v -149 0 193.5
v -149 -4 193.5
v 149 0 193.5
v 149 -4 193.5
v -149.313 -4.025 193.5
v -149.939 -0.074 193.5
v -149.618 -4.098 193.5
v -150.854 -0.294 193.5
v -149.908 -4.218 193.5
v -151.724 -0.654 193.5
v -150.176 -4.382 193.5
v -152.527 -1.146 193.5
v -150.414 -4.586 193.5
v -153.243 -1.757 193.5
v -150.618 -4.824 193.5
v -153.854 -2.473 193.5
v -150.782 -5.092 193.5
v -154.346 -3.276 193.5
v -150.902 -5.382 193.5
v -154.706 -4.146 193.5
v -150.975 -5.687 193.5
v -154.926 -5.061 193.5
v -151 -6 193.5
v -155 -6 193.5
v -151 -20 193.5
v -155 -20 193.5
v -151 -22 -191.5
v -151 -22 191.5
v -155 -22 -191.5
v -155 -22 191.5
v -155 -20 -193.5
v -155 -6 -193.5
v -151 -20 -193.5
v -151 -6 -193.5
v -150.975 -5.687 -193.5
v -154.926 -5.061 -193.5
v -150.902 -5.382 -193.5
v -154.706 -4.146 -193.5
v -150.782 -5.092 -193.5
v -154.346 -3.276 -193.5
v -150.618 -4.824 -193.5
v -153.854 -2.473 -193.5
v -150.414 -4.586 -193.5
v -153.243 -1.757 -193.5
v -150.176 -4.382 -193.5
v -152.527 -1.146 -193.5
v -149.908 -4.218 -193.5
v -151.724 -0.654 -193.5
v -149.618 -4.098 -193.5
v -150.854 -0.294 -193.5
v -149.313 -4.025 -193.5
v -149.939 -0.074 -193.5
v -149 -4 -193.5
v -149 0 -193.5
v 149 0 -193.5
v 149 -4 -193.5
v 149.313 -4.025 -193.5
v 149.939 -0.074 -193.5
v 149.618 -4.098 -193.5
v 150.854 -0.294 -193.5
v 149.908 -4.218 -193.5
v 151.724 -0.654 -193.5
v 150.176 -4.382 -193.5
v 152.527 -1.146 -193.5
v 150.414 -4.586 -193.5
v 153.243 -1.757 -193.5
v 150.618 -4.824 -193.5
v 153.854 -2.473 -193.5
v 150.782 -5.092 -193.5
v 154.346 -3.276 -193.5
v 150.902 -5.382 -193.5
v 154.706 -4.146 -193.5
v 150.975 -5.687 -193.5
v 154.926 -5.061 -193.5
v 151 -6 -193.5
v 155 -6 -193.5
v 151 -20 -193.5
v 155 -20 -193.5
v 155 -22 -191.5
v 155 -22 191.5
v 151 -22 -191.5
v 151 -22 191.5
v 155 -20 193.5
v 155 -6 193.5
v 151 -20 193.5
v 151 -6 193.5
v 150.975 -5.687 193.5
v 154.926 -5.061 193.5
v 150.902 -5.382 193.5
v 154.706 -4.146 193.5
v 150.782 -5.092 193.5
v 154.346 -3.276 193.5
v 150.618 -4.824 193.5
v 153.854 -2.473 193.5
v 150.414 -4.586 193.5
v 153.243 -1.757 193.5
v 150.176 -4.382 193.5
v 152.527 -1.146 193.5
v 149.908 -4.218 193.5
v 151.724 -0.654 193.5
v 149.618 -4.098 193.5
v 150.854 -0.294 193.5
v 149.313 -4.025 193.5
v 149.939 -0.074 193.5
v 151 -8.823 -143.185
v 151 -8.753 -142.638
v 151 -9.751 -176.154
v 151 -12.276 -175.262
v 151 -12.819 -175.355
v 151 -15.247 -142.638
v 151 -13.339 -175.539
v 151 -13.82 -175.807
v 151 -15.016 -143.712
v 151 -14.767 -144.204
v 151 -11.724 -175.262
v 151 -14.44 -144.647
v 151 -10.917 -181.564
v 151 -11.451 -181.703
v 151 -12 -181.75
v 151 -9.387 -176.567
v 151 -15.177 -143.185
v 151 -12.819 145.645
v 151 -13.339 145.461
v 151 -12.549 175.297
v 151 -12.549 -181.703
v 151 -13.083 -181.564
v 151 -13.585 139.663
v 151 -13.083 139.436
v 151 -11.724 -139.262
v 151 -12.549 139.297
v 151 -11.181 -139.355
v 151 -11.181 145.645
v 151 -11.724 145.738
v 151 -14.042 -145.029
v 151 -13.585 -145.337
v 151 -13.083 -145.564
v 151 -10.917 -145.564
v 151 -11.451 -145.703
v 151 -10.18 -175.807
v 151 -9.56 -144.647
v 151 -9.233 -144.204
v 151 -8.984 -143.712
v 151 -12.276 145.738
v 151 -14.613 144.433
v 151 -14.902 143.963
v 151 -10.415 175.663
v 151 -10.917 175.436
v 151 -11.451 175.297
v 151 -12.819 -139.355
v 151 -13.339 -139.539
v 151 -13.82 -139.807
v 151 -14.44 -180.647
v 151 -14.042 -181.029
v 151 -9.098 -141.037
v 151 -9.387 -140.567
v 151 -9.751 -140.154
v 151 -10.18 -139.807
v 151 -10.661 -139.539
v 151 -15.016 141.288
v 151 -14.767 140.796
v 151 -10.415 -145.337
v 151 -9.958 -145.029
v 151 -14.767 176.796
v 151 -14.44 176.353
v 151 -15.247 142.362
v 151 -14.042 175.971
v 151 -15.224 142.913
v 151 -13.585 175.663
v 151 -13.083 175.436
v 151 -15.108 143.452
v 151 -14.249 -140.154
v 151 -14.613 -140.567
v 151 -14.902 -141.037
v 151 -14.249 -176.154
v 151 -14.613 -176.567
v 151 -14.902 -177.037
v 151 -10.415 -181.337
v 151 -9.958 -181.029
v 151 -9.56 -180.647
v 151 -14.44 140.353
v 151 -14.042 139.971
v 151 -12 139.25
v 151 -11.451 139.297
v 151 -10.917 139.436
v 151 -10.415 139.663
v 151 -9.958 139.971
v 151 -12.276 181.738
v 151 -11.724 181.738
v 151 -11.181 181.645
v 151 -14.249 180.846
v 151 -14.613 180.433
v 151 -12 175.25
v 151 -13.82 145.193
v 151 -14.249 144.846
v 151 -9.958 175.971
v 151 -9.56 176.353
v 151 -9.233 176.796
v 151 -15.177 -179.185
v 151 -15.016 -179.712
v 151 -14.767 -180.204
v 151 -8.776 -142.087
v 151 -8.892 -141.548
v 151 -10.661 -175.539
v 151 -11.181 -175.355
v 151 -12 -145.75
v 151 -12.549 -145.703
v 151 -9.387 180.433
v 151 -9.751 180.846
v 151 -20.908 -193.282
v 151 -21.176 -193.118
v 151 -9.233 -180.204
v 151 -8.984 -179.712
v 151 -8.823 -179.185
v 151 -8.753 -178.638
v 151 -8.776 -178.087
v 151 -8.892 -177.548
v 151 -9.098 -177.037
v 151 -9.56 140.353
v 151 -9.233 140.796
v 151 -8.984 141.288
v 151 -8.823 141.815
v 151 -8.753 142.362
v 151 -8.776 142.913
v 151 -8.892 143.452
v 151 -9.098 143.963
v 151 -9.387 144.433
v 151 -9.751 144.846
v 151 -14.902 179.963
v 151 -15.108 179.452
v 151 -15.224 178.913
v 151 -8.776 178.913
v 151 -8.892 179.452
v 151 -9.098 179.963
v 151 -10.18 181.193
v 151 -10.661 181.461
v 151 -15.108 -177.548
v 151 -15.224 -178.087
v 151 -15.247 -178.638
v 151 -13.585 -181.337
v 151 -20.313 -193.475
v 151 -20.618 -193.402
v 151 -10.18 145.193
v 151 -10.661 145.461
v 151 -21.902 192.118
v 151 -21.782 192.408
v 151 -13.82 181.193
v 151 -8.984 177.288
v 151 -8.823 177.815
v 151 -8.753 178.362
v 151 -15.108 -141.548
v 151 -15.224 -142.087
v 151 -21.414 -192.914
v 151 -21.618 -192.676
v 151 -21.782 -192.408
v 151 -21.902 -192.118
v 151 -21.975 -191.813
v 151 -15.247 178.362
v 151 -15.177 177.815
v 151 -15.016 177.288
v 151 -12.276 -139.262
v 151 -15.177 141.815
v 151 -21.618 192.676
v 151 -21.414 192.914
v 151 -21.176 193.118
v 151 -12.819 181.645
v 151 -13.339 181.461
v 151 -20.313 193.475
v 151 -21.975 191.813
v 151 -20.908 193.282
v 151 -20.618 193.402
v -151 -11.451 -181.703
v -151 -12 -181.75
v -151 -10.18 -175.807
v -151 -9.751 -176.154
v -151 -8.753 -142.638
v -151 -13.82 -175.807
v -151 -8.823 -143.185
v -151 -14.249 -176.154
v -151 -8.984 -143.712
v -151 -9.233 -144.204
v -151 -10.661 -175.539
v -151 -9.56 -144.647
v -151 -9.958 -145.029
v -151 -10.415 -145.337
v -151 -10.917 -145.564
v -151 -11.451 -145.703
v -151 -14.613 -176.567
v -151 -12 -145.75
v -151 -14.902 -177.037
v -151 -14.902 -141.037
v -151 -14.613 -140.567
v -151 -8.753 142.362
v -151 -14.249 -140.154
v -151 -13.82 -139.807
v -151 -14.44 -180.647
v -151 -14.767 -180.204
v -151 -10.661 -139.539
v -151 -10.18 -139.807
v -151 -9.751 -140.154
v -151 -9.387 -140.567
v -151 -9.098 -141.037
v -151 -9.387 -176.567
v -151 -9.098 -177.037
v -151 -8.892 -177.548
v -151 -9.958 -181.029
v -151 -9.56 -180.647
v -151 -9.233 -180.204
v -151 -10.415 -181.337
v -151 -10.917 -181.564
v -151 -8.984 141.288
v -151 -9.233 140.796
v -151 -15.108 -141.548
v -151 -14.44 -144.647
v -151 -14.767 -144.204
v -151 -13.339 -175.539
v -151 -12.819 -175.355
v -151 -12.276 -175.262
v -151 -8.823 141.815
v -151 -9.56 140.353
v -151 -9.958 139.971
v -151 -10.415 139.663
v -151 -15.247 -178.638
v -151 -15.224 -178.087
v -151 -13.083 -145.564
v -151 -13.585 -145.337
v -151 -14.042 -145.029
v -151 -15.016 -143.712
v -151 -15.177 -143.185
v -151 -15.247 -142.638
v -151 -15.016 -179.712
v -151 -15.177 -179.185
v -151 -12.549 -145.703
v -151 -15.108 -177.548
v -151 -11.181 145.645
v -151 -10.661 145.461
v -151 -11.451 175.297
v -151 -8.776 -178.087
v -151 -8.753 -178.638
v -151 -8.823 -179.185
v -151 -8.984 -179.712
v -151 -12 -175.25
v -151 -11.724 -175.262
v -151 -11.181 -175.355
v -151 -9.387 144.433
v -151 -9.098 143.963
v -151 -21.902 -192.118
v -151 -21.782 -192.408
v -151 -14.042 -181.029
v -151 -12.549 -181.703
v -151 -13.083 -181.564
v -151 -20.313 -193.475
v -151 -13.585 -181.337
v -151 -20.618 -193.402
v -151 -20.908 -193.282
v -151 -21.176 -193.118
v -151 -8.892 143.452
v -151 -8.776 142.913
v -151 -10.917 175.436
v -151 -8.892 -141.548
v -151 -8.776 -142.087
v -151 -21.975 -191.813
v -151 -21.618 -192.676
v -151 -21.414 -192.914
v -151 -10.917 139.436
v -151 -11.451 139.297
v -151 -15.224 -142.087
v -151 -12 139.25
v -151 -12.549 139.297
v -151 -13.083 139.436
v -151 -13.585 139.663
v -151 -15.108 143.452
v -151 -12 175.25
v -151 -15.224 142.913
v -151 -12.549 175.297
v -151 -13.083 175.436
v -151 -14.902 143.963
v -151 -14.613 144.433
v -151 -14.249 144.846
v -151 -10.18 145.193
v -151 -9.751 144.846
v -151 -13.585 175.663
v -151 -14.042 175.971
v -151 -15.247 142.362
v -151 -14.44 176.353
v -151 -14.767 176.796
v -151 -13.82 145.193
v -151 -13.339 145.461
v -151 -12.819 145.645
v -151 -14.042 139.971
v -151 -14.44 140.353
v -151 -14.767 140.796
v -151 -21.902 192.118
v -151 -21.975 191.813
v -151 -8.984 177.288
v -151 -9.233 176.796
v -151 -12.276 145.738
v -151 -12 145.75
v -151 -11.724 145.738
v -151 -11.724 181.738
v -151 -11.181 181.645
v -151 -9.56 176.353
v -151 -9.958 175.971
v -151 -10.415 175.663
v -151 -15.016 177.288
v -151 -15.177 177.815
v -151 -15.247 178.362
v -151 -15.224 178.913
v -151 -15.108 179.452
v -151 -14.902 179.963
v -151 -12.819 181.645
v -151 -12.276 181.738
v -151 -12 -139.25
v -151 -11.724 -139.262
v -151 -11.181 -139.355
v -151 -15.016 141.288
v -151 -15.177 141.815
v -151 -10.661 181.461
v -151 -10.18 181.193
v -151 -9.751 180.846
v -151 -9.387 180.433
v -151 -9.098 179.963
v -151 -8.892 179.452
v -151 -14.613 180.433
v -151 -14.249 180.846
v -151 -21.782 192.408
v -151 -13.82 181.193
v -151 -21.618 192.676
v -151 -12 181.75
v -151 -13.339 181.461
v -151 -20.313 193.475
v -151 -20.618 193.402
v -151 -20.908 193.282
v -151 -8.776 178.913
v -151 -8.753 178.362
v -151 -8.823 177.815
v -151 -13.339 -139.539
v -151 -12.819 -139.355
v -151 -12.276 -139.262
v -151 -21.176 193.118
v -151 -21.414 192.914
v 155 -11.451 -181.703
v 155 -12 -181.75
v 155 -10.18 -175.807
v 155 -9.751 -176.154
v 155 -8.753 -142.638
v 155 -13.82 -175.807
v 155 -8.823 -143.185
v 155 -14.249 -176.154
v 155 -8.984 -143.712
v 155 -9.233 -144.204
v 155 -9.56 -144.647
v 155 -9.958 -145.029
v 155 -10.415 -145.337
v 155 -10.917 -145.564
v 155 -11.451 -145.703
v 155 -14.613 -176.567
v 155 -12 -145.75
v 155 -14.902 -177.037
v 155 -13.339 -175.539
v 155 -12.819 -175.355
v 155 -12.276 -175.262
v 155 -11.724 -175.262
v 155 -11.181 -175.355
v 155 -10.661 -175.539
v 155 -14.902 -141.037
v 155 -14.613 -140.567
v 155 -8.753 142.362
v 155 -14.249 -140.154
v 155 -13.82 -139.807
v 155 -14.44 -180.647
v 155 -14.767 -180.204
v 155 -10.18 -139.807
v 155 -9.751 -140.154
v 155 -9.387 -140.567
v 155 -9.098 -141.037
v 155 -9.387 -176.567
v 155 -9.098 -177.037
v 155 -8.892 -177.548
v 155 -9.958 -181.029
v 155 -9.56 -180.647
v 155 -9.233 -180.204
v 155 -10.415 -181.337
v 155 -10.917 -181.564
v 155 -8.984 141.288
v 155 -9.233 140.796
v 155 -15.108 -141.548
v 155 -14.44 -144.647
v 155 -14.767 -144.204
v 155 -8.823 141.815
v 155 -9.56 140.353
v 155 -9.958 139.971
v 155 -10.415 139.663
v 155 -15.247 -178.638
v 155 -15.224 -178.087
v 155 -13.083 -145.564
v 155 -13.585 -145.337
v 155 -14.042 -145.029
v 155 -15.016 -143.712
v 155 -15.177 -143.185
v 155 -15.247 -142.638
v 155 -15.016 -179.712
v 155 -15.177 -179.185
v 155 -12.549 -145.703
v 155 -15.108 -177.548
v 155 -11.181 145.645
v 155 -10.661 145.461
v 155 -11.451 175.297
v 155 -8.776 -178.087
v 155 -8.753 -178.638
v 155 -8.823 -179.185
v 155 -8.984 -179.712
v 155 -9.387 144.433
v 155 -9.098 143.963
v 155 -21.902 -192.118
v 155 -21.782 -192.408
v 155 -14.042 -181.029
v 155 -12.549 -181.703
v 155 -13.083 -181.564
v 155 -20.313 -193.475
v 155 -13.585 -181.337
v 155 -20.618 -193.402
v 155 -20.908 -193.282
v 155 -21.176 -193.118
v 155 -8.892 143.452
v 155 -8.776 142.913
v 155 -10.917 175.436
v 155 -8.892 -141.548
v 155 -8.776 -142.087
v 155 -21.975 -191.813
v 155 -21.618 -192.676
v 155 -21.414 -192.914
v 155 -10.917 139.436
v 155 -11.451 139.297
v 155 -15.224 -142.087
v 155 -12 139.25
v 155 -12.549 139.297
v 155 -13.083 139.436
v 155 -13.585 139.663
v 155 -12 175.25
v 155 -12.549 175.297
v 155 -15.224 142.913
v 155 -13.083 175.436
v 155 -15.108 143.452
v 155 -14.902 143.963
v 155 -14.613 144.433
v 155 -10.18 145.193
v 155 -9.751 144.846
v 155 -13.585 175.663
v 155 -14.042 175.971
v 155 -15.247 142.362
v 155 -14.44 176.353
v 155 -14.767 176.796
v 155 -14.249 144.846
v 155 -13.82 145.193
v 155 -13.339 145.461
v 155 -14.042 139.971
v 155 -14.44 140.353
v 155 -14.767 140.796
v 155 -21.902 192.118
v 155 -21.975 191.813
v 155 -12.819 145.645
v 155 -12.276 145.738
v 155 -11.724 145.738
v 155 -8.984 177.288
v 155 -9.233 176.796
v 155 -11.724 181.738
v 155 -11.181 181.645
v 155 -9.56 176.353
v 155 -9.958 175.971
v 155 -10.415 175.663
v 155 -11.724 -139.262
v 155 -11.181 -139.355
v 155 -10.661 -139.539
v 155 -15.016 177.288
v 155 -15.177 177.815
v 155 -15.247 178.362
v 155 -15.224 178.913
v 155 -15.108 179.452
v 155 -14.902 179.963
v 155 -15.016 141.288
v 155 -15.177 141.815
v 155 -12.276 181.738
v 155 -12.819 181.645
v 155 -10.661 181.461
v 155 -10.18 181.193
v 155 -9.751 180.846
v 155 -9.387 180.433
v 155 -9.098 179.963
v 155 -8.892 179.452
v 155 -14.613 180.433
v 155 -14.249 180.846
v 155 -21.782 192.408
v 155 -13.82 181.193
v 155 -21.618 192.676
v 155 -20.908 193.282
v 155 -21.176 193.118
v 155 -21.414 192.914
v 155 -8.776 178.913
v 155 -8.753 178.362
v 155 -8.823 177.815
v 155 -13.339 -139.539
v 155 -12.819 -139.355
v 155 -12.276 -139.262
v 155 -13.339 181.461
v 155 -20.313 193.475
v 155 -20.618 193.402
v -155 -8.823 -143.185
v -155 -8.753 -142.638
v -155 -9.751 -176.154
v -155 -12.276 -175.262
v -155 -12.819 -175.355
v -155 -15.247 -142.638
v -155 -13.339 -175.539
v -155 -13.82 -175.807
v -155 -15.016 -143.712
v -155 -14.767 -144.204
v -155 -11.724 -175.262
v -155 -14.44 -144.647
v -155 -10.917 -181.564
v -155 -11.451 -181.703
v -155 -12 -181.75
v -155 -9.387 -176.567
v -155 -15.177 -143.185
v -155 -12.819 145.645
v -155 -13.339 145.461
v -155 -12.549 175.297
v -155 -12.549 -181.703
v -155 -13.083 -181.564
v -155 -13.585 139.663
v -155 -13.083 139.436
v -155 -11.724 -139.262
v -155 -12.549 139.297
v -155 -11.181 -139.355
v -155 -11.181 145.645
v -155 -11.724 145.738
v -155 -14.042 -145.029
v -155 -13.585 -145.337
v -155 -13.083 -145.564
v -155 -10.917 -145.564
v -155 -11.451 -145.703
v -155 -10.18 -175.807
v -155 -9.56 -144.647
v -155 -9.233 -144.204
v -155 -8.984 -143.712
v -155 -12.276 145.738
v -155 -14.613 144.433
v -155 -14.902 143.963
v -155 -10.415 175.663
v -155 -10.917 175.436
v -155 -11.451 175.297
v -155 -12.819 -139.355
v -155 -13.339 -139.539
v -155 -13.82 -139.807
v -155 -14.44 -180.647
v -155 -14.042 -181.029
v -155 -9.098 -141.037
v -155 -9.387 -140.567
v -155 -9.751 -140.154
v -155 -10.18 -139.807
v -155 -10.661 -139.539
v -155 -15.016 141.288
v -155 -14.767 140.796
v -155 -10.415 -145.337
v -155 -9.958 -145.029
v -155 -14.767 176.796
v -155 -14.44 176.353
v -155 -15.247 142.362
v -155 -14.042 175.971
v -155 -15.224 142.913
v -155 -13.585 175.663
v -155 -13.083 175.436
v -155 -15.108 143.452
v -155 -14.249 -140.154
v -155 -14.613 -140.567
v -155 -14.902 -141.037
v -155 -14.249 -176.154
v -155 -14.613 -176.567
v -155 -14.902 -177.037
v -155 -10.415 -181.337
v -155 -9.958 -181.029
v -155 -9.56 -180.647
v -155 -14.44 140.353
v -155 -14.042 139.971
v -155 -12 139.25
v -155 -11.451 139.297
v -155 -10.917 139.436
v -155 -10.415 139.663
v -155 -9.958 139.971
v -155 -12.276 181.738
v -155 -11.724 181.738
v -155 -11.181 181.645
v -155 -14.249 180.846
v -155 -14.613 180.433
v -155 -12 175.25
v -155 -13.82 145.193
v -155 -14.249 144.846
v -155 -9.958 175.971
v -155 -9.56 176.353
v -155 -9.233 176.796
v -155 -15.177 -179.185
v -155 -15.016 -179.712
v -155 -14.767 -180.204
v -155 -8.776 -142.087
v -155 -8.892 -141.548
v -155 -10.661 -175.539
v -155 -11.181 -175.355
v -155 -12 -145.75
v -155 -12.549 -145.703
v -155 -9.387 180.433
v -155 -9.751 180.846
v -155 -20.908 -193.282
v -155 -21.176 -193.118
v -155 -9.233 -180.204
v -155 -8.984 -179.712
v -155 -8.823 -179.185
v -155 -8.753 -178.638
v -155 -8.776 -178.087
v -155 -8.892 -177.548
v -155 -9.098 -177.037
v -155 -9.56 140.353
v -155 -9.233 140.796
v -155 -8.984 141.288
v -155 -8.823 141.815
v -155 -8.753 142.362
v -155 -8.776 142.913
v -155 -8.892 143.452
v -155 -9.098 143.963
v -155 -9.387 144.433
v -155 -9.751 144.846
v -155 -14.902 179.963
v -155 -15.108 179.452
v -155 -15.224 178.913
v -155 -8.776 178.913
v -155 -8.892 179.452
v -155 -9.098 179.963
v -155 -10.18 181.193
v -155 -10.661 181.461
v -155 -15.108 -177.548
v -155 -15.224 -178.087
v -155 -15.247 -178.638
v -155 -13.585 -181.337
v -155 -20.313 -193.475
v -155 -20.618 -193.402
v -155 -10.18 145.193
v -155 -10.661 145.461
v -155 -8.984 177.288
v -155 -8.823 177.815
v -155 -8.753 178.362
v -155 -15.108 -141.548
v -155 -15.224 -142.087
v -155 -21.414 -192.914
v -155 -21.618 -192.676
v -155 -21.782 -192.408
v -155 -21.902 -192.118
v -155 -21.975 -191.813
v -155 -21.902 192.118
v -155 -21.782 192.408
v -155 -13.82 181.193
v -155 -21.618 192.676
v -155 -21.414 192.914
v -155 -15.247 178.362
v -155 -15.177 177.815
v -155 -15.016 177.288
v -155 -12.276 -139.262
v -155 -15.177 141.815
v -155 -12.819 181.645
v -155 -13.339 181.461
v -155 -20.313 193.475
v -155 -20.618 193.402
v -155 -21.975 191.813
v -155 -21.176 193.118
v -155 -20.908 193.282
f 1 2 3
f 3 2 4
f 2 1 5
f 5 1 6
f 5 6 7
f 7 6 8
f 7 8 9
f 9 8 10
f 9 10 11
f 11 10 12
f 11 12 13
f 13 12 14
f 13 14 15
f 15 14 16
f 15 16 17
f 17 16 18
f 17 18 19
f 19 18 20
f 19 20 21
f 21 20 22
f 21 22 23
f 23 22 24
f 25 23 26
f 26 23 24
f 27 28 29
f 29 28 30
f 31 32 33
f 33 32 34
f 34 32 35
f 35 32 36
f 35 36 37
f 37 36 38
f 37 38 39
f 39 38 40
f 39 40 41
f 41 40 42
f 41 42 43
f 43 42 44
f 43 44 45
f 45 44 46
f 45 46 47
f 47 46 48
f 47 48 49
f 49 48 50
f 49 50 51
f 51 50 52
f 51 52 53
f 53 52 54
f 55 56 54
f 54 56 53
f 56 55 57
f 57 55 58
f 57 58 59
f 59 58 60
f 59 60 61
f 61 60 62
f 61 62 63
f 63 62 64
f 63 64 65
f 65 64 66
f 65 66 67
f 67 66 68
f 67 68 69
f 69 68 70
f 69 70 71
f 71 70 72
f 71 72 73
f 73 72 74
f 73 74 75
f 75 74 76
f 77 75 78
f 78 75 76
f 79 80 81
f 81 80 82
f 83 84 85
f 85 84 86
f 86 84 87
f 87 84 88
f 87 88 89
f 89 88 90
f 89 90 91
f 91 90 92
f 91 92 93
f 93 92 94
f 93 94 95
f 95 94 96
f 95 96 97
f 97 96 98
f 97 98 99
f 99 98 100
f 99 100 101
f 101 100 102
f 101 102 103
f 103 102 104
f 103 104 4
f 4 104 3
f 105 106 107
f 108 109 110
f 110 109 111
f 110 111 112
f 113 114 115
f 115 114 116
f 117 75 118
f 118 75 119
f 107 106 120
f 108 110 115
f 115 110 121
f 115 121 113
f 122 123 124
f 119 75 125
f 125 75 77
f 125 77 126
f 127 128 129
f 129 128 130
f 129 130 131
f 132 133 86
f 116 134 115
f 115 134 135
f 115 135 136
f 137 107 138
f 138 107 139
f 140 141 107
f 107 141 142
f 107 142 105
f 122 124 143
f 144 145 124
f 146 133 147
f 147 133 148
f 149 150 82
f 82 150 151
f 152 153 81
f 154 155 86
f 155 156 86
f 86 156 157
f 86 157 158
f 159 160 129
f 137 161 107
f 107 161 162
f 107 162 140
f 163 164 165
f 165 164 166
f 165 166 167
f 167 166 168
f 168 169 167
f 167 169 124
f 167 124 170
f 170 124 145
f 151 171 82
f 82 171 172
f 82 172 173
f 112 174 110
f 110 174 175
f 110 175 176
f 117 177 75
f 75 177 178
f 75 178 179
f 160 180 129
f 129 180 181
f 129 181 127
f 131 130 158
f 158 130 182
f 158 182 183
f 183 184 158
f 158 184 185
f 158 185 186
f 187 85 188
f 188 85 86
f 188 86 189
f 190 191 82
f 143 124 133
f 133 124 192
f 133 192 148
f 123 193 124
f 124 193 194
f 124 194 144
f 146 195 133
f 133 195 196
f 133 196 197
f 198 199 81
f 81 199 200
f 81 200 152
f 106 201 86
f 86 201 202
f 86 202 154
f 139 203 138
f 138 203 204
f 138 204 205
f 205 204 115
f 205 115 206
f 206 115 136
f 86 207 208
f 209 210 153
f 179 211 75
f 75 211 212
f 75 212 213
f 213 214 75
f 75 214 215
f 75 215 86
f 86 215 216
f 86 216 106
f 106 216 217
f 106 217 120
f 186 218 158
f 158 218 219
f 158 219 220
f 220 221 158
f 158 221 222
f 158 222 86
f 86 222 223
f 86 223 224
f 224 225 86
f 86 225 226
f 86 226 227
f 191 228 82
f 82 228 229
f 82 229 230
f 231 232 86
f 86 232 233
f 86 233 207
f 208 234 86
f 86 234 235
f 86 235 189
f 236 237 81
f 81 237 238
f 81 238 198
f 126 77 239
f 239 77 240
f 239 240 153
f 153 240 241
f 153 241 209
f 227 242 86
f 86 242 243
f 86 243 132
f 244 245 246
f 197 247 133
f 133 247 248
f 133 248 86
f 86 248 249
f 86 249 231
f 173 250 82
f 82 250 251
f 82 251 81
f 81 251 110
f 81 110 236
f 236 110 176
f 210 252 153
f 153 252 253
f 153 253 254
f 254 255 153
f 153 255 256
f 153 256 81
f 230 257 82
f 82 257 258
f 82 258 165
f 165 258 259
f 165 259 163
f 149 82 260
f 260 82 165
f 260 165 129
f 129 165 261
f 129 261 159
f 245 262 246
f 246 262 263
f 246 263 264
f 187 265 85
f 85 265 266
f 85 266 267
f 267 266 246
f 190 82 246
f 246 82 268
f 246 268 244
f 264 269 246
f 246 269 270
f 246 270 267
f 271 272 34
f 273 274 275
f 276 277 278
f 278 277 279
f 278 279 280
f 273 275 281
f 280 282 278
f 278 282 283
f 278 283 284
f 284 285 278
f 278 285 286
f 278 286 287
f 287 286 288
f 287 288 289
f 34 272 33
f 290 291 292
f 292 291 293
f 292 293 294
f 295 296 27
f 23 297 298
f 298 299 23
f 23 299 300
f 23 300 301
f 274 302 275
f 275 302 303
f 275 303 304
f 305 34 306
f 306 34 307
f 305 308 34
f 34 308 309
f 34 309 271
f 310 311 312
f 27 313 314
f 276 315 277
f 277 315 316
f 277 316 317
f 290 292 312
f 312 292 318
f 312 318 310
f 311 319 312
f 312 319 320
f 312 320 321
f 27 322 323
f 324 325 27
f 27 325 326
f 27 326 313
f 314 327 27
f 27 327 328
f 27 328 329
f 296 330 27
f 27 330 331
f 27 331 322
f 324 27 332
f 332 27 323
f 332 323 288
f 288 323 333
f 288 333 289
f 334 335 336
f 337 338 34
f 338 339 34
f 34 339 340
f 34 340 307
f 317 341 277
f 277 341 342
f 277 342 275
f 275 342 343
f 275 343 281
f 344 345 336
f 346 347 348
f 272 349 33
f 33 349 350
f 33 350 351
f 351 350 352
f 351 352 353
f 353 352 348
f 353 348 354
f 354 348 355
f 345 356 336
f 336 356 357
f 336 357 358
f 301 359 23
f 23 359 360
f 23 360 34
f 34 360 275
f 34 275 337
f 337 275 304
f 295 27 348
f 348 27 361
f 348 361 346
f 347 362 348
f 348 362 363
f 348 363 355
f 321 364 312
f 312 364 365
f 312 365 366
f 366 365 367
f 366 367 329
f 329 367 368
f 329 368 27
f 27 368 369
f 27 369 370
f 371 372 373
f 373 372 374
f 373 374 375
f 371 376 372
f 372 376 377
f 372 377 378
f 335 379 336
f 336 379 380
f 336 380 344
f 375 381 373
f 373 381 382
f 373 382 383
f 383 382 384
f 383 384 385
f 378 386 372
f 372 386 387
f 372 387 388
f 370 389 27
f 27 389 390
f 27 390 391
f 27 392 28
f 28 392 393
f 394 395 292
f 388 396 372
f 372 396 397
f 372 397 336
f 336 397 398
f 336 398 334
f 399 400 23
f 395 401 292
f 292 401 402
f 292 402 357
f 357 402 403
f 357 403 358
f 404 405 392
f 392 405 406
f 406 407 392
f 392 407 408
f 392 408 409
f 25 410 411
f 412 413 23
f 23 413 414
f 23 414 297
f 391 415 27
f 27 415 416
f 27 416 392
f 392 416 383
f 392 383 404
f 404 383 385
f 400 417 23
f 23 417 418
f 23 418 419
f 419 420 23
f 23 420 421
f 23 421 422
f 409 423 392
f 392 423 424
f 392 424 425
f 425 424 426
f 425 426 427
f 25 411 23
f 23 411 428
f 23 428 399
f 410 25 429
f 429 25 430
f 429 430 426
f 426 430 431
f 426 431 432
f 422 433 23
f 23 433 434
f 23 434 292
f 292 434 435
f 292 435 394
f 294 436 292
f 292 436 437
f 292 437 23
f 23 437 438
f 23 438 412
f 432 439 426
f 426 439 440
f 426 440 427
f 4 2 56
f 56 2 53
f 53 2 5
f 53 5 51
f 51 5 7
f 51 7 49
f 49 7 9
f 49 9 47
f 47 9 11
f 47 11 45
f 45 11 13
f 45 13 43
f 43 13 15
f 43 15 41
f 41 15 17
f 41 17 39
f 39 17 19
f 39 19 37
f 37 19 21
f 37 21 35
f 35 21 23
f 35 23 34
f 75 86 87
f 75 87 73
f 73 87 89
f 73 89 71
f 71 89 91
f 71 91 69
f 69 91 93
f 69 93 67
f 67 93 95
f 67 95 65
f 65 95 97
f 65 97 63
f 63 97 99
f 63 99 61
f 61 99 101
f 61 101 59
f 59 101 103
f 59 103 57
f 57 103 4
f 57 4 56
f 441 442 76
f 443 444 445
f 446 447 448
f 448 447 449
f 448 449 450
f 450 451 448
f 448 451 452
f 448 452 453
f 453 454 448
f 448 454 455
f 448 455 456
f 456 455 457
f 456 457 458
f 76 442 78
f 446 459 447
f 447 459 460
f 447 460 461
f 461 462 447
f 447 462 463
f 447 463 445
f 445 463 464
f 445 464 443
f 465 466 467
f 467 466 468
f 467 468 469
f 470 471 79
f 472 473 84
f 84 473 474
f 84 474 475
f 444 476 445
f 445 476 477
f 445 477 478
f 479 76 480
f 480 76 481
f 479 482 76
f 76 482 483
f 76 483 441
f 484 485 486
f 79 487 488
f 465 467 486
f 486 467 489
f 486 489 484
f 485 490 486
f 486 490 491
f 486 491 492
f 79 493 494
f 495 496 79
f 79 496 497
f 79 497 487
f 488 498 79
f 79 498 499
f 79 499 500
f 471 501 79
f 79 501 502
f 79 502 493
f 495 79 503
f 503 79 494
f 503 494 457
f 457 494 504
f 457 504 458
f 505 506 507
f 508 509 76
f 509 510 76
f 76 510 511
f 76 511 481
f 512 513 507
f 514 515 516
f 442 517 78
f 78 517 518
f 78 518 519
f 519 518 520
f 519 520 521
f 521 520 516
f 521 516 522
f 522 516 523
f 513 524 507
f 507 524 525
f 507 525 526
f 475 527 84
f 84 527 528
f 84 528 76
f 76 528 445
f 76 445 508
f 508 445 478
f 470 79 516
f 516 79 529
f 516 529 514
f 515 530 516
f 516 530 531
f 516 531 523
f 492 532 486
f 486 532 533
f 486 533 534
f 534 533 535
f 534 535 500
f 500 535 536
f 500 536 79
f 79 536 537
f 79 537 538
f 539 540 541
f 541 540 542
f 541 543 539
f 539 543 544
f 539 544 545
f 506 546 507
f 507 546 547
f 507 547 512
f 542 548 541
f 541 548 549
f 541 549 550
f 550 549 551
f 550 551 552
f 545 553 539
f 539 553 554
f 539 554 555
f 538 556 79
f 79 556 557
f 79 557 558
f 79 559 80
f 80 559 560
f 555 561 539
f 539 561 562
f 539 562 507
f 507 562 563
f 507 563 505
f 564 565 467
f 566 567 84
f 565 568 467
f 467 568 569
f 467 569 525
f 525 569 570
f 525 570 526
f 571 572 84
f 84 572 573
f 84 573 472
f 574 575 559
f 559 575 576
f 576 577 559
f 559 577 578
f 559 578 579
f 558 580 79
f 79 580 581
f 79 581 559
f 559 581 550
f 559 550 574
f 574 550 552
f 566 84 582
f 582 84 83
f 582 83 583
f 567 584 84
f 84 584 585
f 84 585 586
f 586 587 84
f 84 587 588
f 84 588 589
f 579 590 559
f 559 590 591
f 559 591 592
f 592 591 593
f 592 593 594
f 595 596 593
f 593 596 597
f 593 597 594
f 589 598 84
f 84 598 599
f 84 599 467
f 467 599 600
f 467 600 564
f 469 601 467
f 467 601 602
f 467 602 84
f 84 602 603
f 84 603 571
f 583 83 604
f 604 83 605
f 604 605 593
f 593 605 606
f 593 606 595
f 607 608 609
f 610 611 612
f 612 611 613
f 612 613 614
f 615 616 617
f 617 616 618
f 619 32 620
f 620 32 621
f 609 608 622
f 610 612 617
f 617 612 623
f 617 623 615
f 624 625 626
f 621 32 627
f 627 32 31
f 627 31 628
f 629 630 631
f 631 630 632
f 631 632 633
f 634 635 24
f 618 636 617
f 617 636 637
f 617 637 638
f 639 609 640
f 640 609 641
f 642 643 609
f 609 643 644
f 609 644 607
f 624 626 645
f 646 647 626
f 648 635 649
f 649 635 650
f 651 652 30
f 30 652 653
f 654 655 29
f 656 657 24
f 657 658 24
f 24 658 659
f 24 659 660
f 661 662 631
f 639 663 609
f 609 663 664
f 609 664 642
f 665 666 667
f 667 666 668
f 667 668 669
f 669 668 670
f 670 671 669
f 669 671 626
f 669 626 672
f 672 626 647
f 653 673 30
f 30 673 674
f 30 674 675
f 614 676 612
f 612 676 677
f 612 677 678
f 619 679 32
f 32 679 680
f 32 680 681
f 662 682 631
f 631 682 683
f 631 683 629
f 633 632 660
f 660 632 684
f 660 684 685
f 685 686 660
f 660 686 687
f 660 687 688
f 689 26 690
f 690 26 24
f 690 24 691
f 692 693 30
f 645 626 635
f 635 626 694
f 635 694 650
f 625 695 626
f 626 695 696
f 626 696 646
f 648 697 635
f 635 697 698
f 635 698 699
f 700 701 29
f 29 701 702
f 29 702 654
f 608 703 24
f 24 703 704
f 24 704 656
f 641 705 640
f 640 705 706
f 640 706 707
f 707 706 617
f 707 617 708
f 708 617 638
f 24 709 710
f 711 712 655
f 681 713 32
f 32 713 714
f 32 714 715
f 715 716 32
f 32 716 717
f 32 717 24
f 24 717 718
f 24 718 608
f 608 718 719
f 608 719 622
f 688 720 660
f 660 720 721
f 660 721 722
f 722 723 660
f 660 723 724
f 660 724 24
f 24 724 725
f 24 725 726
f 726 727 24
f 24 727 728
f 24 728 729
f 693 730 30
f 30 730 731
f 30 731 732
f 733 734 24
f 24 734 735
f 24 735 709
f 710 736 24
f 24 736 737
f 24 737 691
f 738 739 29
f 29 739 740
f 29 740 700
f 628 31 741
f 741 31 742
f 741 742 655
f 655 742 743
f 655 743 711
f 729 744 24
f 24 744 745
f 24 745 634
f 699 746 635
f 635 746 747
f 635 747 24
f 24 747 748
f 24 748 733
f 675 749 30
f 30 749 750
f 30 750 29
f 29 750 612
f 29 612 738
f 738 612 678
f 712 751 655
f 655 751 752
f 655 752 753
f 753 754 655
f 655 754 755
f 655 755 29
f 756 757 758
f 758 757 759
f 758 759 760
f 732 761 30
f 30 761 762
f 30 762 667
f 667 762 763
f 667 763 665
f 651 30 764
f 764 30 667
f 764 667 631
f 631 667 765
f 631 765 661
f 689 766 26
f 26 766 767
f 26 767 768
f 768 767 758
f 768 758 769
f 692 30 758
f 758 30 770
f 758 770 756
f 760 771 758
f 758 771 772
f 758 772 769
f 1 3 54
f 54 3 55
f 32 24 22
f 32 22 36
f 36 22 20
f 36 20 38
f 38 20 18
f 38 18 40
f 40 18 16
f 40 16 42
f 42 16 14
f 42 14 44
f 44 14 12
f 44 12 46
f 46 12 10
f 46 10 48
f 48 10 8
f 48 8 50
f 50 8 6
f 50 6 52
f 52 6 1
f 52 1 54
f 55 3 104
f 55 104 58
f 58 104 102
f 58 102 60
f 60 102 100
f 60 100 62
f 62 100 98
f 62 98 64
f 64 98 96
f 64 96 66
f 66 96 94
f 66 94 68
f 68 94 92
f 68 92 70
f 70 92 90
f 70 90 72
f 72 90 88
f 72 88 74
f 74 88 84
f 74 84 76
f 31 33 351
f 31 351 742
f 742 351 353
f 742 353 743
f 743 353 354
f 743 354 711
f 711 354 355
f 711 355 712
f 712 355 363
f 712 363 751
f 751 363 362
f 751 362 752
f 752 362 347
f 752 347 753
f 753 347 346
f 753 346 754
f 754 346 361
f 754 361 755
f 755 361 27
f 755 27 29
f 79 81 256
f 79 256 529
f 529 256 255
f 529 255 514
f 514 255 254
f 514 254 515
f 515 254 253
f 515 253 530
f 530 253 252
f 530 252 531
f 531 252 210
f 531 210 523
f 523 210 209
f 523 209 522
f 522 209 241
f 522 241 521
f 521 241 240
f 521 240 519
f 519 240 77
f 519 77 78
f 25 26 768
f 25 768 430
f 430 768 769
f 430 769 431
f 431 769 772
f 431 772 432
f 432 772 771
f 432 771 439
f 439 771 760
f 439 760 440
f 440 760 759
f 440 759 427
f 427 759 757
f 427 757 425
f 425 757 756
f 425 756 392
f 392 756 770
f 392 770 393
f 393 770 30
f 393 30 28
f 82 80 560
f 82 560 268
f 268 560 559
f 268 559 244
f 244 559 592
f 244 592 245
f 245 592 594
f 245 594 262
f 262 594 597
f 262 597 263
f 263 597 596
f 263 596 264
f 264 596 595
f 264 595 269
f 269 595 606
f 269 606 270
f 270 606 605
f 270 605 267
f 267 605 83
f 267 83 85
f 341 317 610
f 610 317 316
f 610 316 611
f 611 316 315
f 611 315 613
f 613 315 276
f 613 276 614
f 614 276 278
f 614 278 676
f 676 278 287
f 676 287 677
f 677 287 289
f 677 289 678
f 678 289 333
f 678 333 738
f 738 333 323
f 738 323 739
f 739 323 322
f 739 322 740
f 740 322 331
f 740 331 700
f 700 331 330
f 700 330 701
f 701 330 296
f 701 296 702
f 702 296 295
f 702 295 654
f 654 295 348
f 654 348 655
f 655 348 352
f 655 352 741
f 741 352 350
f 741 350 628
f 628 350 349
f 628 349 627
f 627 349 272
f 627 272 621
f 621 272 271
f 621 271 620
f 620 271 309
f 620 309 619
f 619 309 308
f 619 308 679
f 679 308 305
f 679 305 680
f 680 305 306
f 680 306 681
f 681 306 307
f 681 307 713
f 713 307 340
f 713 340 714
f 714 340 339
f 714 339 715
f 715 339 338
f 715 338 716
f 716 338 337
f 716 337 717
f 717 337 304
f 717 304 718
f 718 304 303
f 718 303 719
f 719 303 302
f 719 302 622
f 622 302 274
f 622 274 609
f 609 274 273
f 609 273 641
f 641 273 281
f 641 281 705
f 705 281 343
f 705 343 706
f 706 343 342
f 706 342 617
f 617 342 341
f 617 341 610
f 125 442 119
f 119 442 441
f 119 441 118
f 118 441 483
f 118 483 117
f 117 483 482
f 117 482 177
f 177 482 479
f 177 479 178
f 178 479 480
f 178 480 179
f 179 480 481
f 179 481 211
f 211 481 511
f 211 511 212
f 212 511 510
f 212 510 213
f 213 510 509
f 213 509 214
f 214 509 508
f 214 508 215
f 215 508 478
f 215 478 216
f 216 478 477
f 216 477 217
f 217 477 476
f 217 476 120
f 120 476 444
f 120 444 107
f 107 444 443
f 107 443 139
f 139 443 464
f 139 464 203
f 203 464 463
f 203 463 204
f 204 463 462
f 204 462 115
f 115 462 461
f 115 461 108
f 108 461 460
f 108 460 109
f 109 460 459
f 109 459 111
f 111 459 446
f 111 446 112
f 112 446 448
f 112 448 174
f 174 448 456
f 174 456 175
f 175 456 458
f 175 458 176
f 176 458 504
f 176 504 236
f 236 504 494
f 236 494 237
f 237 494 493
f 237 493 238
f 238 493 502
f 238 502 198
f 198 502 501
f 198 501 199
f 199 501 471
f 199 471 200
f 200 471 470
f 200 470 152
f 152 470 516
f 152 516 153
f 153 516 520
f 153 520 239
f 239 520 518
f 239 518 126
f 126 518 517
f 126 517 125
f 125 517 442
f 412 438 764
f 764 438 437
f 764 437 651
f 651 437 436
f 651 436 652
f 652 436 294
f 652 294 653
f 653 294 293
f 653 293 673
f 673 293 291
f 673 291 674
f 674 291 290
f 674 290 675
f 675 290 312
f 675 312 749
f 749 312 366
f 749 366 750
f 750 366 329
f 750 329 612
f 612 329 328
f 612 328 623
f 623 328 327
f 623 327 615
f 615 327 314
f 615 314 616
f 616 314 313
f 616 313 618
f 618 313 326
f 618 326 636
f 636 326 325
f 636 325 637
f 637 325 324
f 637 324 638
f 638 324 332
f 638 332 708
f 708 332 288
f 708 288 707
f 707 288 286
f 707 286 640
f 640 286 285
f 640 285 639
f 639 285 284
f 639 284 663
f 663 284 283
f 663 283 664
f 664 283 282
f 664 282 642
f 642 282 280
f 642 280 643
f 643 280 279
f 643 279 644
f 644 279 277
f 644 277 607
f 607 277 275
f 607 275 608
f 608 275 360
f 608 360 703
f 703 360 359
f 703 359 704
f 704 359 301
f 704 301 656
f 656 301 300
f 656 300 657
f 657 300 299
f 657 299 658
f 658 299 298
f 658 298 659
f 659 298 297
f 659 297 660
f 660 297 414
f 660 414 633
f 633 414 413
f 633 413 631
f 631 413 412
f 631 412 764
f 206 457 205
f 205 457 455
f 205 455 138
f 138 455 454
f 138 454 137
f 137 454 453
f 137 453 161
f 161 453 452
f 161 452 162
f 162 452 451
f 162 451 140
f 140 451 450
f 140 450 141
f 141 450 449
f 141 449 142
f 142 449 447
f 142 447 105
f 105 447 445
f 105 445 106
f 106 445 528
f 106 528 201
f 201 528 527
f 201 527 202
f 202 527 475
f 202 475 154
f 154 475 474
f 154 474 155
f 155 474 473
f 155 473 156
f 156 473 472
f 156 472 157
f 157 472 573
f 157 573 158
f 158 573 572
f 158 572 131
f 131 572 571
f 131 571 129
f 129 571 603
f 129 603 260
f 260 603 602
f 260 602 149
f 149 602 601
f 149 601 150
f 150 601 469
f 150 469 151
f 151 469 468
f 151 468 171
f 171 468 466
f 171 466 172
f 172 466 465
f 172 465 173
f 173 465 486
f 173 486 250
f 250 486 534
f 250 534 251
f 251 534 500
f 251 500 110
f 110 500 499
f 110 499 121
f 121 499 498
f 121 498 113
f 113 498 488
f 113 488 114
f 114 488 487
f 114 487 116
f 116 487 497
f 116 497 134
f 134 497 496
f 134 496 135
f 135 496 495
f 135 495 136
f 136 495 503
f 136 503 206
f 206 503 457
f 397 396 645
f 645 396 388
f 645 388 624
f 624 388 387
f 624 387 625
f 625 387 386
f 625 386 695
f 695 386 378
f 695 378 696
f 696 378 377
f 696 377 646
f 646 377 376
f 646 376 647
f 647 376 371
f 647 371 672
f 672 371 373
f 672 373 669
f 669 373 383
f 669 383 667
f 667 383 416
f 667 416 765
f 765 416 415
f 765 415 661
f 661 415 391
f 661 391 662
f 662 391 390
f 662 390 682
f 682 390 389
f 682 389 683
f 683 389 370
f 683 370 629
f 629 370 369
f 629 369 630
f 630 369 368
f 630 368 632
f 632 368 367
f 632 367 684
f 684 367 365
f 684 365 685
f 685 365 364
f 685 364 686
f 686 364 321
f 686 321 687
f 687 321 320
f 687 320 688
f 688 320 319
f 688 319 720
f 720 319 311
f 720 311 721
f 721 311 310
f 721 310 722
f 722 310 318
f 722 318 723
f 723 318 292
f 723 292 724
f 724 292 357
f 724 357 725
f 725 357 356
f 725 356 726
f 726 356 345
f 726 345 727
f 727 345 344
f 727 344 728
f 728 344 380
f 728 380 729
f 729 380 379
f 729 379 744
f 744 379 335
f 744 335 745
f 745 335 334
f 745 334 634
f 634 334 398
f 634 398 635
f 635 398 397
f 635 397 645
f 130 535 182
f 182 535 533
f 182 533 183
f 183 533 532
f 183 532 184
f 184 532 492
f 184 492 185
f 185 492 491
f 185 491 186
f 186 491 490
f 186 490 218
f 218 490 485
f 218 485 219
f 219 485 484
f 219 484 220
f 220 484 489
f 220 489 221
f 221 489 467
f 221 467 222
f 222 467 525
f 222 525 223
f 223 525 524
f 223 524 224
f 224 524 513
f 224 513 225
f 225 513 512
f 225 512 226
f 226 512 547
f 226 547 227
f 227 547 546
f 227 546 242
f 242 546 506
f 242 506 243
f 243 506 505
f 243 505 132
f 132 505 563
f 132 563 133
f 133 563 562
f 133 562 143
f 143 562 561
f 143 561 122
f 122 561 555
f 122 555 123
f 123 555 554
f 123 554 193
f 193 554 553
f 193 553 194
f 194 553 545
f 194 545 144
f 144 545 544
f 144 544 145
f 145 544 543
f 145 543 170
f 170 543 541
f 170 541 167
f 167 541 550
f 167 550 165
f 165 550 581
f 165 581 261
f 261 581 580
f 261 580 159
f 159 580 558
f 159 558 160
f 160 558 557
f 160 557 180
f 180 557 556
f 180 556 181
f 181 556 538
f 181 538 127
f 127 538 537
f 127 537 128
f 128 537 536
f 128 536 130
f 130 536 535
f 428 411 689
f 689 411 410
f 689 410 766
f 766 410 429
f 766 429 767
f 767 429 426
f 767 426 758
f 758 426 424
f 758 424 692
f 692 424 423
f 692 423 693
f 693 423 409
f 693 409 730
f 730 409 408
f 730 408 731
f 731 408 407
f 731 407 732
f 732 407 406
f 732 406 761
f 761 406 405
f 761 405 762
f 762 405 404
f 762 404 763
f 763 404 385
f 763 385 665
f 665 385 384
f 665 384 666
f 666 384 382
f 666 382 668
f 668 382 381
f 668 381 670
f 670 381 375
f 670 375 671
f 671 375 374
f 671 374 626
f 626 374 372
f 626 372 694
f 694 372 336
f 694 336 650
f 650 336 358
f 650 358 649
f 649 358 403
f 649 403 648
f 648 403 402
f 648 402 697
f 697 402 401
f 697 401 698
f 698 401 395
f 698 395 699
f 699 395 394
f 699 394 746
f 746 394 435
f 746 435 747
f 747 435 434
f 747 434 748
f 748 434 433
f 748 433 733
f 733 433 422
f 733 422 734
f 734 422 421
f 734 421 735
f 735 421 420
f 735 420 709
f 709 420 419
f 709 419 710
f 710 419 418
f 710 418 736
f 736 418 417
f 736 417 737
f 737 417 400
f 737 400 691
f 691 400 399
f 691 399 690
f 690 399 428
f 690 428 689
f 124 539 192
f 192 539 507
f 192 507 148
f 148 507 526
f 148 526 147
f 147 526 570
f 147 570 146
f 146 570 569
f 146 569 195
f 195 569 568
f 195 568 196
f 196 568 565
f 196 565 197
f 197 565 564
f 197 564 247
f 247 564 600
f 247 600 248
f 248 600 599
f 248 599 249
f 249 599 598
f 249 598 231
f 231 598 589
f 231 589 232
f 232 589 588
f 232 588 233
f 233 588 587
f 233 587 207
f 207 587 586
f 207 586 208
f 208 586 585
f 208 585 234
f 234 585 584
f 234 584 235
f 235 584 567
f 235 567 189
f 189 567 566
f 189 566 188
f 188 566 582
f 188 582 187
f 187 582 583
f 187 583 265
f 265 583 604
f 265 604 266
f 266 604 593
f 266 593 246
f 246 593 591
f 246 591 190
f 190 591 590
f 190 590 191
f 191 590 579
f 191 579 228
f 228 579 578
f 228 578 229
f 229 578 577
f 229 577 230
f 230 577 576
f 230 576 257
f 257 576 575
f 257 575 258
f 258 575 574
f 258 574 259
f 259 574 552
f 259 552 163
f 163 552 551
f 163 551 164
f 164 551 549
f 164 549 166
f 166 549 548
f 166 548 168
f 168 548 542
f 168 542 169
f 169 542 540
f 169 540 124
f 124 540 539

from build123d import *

# Parameters (mm, degrees)
EXTRUDE_THIN1_DEPTH        = 193.5
CONVERT_SOLID1_START       = -193.5
CONVERT_SOLID1_DEPTH       = 387
CONVERT_SOLID1_2_DEPTH     = 387
FILLET1_R                  = 2
F_6_5_6_5_DIAMETER_HOLE1_D = 6.5


# Read off the part's stored shape, not the designer's step: Convert-Solid1
with BuildPart() as part:
    # Sketch1 → Extrude-Thin1 (new, symmetric)
    with BuildSketch(Plane.XY):
        Polygon((-155, -22), (-155, 0), (155, 0), (155, -22), (151, -22), (151, -4), (-151, -4), (-151, -22), align=None)
    extrude(amount=EXTRUDE_THIN1_DEPTH, both=True)

    # Convert-Solid1 outline → Convert-Solid1 (cut)
    with BuildSketch(Plane.XY.offset(CONVERT_SOLID1_START)):
        with BuildLine():
            Line((155, 0), (149, 0))
            ThreePointArc((149, 0), (153.242640687, -1.757359313), (155, -6))
            Line((155, -6), (155, 0))
        make_face()
        with BuildLine():
            ThreePointArc((-155, -6), (-153.242640687, -1.757359313), (-149, 0))
            Line((-149, 0), (-155, 0))
            Line((-155, 0), (-155, -6))
        make_face()
    extrude(amount=CONVERT_SOLID1_DEPTH, mode=Mode.SUBTRACT)

    # Convert-Solid1 2 outline → Convert-Solid1 2 (add)
    with BuildSketch(Plane.XY.offset(CONVERT_SOLID1_START)):
        with BuildLine():
            Line((151, -4), (149, -4))
            ThreePointArc((149, -4), (150.414213562, -4.585786438), (151, -6))
            Line((151, -6), (151, -4))
        make_face()
        with BuildLine():
            ThreePointArc((-151, -6), (-150.414213562, -4.585786438), (-149, -4))
            Line((-149, -4), (-151, -4))
            Line((-151, -4), (-151, -6))
        make_face()
    extrude(amount=CONVERT_SOLID1_2_DEPTH)

    # Fillet1
    fillet1_edges = [part.edges().sort_by_distance(p)[0] for p in [
        (153, -22, 193.5),
        (153, -22, -193.5),
        (-153, -22, -193.5),
        (-153, -22, 193.5),
    ]]
    fillet(fillet1_edges, radius=FILLET1_R)

    # Ø6.5 (6.5) Diameter Hole1 (through all)
    with Locations(Plane(origin=(159, 0, 0), x_dir=(0, 0, -1), z_dir=(1, 0, 0))):
        with Locations((-178.5, -12), (-142.5, -12), (142.5, -12), (178.5, -12)):
            Hole(F_6_5_6_5_DIAMETER_HOLE1_D / 2)


solid = part.part
